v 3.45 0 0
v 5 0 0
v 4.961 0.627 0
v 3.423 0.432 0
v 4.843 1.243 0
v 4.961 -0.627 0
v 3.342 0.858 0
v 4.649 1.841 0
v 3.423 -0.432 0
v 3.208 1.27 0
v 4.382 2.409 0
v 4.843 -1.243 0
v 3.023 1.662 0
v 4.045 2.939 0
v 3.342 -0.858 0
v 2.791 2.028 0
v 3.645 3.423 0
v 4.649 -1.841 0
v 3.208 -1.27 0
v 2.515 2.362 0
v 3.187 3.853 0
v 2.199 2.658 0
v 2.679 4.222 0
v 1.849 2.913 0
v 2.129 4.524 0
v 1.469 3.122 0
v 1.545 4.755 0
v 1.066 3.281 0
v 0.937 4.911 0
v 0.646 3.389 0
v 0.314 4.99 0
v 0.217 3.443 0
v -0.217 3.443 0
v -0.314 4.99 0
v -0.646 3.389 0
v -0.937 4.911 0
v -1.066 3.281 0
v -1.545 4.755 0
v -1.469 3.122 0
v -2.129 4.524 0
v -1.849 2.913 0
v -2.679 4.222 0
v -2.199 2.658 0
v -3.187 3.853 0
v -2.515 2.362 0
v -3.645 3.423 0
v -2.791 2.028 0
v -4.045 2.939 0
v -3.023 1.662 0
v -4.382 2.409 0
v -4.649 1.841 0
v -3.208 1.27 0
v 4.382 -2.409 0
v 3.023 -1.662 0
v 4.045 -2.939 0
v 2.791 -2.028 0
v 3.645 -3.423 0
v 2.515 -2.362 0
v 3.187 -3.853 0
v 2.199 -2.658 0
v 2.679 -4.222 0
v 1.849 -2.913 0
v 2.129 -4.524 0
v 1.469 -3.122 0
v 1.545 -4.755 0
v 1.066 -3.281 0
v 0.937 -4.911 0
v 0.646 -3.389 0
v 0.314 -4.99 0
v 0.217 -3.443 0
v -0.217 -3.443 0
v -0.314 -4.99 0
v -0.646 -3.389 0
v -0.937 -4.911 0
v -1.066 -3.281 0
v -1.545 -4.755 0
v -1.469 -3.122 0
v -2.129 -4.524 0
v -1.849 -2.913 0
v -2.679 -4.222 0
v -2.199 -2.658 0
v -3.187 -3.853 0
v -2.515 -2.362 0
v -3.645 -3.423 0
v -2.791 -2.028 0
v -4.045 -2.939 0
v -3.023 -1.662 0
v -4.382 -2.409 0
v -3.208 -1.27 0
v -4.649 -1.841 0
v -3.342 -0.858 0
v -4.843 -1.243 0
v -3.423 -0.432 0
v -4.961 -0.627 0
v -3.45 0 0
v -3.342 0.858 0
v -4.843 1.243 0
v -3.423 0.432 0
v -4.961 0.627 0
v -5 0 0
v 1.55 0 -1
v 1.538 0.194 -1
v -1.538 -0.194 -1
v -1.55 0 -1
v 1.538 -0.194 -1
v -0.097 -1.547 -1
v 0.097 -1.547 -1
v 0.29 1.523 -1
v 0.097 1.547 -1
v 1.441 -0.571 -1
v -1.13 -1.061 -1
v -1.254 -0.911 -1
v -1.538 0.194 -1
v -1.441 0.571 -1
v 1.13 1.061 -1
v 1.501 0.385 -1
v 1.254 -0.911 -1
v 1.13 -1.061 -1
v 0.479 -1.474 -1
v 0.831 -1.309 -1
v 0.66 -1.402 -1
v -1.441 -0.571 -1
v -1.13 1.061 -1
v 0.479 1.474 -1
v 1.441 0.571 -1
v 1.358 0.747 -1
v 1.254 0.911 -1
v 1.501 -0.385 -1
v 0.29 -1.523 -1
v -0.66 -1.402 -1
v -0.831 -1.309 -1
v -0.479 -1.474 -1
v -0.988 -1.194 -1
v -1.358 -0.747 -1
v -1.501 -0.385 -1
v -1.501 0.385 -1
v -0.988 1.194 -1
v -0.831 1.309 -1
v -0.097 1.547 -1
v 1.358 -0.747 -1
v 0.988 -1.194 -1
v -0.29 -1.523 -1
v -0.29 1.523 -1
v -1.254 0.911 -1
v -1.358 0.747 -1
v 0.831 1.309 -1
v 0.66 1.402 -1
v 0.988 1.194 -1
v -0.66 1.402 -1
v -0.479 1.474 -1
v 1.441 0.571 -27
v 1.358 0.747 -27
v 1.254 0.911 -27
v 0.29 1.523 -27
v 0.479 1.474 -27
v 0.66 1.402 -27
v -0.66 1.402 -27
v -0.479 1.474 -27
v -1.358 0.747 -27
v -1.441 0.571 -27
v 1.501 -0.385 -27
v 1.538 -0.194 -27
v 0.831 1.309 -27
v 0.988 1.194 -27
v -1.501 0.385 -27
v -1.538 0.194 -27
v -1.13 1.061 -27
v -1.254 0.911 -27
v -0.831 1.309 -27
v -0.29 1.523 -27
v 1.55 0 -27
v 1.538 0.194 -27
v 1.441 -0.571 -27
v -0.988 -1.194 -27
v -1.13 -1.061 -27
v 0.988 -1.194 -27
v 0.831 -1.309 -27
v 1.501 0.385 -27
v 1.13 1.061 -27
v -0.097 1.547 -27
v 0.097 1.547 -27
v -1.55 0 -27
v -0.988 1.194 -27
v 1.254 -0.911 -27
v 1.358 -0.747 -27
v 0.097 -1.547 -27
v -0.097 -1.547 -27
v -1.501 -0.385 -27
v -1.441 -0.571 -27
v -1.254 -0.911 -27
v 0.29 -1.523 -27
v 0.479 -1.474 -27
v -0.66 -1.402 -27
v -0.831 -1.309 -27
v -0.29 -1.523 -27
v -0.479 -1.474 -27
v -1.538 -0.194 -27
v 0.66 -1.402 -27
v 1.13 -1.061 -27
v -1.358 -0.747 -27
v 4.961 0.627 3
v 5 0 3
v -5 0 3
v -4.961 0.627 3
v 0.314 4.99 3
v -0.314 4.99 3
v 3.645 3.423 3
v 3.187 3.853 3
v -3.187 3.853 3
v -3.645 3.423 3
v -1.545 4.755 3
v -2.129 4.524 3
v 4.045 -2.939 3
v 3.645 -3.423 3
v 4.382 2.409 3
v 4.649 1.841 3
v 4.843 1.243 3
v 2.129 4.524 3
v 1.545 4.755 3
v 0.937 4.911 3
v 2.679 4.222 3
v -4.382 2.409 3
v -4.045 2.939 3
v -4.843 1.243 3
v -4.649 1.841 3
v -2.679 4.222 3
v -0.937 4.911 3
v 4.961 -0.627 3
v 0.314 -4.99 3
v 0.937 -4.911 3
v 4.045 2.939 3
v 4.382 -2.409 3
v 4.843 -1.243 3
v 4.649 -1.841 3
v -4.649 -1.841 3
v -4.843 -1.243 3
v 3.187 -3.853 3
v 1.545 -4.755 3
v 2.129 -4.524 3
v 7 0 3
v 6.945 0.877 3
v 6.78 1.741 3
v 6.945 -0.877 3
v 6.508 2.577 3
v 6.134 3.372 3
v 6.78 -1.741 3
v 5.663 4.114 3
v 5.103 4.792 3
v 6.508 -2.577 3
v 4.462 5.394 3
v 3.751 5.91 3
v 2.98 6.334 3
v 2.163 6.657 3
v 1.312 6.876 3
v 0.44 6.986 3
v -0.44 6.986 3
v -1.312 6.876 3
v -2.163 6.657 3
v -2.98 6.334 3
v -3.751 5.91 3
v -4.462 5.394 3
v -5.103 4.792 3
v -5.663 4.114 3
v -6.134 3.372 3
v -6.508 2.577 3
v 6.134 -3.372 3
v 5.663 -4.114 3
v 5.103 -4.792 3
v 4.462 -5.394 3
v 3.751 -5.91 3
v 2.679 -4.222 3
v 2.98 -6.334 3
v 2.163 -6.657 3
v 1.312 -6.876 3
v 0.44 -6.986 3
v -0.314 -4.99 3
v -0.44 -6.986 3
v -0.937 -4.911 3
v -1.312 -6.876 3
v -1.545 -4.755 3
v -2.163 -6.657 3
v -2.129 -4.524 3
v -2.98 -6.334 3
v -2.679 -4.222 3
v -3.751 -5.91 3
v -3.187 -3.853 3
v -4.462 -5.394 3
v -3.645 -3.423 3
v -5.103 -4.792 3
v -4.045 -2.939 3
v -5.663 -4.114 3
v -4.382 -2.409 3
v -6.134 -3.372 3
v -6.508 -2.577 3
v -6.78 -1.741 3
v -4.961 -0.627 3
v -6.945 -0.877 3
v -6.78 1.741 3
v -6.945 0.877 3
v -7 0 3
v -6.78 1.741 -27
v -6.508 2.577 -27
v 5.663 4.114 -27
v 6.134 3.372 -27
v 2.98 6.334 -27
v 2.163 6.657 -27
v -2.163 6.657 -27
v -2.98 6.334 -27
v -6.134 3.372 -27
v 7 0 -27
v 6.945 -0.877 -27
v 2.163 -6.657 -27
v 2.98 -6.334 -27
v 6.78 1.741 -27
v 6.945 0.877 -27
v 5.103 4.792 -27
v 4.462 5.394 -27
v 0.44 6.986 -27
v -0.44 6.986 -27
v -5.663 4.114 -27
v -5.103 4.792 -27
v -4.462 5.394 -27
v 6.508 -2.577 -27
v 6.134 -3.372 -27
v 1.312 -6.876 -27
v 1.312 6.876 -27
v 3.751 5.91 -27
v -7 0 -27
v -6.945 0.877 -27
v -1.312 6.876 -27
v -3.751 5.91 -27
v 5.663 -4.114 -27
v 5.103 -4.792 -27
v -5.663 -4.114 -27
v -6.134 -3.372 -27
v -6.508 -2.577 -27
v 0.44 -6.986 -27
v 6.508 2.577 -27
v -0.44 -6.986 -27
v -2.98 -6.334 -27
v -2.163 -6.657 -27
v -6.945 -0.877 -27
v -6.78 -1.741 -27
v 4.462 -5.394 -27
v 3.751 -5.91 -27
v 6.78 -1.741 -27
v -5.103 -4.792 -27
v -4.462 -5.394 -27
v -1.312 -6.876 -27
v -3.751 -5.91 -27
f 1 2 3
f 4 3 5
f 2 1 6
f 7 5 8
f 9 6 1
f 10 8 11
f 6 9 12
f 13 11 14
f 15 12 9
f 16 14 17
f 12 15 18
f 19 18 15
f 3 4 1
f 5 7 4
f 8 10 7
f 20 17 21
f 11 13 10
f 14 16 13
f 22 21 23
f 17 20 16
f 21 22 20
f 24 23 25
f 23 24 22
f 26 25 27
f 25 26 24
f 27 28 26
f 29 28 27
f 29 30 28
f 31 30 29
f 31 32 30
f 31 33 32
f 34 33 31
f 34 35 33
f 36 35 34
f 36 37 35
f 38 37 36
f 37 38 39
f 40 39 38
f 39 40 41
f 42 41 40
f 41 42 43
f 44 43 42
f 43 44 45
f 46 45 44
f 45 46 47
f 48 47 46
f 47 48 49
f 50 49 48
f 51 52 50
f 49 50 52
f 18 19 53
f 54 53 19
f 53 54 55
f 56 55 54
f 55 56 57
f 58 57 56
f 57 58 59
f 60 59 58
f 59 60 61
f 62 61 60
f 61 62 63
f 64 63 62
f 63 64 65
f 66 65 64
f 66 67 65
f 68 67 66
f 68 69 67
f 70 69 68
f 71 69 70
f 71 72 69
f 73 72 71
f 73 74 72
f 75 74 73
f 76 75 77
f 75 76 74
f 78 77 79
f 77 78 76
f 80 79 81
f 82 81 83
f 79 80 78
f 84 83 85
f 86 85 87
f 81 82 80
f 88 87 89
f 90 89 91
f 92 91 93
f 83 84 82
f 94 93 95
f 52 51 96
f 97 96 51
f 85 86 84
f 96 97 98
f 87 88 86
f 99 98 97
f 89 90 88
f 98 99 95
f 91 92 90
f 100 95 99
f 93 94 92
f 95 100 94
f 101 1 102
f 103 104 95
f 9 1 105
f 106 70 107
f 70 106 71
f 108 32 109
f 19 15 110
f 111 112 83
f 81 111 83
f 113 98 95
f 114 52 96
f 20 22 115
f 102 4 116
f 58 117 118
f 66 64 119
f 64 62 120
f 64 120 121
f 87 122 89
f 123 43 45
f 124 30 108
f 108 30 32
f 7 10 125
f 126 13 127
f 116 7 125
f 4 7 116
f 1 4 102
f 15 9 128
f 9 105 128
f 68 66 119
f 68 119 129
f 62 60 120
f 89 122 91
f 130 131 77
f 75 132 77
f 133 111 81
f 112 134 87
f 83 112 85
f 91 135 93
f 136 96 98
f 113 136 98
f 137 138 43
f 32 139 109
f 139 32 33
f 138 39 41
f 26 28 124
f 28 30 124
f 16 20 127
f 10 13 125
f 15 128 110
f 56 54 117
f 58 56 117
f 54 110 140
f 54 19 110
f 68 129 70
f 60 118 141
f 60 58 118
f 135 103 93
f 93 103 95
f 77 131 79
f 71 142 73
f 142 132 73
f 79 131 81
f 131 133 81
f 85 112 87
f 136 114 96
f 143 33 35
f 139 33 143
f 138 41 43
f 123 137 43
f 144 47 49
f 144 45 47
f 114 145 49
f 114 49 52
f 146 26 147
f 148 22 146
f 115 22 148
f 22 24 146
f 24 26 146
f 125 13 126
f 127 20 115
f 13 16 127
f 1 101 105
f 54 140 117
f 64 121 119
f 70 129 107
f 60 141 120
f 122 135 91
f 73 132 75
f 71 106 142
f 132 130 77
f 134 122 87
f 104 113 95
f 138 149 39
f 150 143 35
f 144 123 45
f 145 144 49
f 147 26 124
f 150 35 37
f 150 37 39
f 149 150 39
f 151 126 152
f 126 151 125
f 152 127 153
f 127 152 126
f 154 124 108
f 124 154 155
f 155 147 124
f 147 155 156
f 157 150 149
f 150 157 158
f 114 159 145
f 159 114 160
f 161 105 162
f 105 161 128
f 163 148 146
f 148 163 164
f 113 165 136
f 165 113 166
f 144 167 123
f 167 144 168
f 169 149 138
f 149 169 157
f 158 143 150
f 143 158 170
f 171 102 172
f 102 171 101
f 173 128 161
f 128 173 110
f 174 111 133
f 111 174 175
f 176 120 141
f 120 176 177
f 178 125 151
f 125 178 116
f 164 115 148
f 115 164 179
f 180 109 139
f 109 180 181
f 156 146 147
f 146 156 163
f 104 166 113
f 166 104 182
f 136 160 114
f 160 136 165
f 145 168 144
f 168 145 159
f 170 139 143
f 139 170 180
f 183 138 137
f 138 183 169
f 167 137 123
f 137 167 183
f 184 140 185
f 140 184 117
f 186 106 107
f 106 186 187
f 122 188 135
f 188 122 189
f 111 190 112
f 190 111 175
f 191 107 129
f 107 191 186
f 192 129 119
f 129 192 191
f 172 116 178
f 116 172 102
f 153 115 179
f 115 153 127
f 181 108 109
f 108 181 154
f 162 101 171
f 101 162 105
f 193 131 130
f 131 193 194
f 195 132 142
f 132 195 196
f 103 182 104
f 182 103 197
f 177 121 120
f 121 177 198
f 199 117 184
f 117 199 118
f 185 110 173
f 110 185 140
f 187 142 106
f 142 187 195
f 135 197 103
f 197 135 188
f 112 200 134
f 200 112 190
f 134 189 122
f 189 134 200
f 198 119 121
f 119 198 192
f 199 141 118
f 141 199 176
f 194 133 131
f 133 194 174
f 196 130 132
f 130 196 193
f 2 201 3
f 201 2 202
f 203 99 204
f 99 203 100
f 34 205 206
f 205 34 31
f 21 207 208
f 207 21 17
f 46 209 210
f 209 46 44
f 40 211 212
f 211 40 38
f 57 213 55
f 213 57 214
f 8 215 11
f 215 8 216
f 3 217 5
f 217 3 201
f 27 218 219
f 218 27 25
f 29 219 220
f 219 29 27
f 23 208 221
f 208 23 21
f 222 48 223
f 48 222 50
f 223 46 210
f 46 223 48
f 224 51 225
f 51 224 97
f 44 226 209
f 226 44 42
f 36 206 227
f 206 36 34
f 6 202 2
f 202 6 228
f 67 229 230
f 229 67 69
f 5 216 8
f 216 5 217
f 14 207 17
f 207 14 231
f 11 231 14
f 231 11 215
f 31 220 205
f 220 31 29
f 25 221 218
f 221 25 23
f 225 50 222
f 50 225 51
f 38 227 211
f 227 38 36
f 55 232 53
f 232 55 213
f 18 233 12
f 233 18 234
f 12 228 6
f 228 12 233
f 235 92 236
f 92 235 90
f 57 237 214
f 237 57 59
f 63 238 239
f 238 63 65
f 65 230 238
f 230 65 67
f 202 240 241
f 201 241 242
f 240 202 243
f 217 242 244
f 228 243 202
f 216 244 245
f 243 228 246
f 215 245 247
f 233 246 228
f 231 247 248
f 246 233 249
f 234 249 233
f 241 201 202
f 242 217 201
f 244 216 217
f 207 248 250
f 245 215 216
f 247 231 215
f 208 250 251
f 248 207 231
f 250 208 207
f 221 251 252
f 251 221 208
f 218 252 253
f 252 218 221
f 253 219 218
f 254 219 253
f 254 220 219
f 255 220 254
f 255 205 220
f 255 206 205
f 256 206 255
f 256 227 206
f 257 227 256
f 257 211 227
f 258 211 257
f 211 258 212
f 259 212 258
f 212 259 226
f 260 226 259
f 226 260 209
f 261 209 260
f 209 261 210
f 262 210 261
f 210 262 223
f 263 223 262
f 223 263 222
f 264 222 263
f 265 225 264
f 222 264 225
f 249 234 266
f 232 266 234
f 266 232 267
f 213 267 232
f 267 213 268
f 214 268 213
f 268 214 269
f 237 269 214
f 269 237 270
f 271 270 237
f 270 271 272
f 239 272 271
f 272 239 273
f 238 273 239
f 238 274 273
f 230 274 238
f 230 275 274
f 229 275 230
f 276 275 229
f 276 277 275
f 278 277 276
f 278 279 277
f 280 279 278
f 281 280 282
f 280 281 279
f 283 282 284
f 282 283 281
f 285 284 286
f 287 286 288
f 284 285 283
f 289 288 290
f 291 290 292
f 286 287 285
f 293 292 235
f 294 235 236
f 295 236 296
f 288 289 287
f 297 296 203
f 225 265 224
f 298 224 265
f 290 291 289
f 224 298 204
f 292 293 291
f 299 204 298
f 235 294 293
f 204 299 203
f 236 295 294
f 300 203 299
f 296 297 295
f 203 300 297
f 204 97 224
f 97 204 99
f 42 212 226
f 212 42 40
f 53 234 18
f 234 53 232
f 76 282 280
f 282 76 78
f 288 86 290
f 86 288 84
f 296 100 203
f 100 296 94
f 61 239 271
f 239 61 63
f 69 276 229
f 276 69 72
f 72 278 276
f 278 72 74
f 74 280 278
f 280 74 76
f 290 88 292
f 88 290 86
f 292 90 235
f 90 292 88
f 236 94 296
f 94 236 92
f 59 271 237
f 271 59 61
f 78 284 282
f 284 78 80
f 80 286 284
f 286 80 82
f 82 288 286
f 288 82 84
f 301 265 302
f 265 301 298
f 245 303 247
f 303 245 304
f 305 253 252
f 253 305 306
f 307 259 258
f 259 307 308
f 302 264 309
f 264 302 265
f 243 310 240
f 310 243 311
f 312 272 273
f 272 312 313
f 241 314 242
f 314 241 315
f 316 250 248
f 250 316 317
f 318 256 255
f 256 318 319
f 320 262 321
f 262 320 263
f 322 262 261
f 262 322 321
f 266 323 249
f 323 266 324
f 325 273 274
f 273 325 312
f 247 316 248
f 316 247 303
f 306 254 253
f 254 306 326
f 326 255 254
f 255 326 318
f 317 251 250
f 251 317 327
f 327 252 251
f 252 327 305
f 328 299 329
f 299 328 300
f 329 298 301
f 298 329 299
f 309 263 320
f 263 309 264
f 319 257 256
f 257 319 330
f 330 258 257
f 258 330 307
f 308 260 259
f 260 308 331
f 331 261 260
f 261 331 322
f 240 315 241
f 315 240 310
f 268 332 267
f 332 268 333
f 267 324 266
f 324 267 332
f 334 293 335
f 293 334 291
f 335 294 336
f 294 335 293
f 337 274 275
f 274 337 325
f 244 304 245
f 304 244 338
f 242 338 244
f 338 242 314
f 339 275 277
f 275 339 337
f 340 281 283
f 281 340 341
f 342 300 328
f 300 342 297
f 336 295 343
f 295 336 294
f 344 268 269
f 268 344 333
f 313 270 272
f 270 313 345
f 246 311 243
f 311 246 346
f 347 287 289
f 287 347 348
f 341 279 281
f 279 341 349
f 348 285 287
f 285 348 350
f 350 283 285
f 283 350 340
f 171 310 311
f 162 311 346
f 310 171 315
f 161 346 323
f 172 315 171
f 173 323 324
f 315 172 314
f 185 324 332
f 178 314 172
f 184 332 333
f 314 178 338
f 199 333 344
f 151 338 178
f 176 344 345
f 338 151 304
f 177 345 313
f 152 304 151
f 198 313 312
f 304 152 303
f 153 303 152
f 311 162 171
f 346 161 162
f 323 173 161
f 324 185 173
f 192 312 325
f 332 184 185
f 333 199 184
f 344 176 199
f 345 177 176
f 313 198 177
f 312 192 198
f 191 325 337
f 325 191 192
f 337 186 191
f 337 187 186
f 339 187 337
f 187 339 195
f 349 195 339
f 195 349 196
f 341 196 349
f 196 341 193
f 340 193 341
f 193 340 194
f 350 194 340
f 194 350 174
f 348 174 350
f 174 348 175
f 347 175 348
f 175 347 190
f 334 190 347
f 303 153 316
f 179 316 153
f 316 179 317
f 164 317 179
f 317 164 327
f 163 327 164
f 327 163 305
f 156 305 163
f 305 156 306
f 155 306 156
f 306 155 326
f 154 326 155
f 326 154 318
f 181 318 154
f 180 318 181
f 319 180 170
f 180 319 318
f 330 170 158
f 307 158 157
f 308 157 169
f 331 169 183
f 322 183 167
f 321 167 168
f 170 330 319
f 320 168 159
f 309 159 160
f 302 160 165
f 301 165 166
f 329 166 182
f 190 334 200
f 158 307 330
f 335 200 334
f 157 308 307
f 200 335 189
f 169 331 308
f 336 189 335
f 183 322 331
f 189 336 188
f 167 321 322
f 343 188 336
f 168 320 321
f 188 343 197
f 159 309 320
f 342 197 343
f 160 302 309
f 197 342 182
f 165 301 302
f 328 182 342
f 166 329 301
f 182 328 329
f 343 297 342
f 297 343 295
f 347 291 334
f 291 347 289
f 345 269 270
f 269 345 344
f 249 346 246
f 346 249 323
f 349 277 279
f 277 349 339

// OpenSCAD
$fn = 50;

difference() {
	union() {
		translate(v = [0, 0, -27.0]) {
			cylinder(h = 30, r = 7.0);
		}
	}
	union() {
		translate(v = [0, 0, 0]) {
			rotate(a = [0, 0, 0]) {
				difference() {
					union() {
						translate(v = [0, 0, -30.0]) {
							cylinder(h = 30, r = 1.25);
						}
						translate(v = [0, 0, -1.0]) {
							cylinder(h = 1.0, r1 = 1.55, r2 = 3.45);
						}
						translate(v = [0, 0, -30.0]) {
							cylinder(h = 30, r = 1.55);
						}
						translate(v = [0, 0, -30.0]) {
							cylinder(h = 30, r = 1.25);
						}
					}
					union();
				}
			}
		}
		#cylinder(h = 3, r = 5.0);
	}
}
